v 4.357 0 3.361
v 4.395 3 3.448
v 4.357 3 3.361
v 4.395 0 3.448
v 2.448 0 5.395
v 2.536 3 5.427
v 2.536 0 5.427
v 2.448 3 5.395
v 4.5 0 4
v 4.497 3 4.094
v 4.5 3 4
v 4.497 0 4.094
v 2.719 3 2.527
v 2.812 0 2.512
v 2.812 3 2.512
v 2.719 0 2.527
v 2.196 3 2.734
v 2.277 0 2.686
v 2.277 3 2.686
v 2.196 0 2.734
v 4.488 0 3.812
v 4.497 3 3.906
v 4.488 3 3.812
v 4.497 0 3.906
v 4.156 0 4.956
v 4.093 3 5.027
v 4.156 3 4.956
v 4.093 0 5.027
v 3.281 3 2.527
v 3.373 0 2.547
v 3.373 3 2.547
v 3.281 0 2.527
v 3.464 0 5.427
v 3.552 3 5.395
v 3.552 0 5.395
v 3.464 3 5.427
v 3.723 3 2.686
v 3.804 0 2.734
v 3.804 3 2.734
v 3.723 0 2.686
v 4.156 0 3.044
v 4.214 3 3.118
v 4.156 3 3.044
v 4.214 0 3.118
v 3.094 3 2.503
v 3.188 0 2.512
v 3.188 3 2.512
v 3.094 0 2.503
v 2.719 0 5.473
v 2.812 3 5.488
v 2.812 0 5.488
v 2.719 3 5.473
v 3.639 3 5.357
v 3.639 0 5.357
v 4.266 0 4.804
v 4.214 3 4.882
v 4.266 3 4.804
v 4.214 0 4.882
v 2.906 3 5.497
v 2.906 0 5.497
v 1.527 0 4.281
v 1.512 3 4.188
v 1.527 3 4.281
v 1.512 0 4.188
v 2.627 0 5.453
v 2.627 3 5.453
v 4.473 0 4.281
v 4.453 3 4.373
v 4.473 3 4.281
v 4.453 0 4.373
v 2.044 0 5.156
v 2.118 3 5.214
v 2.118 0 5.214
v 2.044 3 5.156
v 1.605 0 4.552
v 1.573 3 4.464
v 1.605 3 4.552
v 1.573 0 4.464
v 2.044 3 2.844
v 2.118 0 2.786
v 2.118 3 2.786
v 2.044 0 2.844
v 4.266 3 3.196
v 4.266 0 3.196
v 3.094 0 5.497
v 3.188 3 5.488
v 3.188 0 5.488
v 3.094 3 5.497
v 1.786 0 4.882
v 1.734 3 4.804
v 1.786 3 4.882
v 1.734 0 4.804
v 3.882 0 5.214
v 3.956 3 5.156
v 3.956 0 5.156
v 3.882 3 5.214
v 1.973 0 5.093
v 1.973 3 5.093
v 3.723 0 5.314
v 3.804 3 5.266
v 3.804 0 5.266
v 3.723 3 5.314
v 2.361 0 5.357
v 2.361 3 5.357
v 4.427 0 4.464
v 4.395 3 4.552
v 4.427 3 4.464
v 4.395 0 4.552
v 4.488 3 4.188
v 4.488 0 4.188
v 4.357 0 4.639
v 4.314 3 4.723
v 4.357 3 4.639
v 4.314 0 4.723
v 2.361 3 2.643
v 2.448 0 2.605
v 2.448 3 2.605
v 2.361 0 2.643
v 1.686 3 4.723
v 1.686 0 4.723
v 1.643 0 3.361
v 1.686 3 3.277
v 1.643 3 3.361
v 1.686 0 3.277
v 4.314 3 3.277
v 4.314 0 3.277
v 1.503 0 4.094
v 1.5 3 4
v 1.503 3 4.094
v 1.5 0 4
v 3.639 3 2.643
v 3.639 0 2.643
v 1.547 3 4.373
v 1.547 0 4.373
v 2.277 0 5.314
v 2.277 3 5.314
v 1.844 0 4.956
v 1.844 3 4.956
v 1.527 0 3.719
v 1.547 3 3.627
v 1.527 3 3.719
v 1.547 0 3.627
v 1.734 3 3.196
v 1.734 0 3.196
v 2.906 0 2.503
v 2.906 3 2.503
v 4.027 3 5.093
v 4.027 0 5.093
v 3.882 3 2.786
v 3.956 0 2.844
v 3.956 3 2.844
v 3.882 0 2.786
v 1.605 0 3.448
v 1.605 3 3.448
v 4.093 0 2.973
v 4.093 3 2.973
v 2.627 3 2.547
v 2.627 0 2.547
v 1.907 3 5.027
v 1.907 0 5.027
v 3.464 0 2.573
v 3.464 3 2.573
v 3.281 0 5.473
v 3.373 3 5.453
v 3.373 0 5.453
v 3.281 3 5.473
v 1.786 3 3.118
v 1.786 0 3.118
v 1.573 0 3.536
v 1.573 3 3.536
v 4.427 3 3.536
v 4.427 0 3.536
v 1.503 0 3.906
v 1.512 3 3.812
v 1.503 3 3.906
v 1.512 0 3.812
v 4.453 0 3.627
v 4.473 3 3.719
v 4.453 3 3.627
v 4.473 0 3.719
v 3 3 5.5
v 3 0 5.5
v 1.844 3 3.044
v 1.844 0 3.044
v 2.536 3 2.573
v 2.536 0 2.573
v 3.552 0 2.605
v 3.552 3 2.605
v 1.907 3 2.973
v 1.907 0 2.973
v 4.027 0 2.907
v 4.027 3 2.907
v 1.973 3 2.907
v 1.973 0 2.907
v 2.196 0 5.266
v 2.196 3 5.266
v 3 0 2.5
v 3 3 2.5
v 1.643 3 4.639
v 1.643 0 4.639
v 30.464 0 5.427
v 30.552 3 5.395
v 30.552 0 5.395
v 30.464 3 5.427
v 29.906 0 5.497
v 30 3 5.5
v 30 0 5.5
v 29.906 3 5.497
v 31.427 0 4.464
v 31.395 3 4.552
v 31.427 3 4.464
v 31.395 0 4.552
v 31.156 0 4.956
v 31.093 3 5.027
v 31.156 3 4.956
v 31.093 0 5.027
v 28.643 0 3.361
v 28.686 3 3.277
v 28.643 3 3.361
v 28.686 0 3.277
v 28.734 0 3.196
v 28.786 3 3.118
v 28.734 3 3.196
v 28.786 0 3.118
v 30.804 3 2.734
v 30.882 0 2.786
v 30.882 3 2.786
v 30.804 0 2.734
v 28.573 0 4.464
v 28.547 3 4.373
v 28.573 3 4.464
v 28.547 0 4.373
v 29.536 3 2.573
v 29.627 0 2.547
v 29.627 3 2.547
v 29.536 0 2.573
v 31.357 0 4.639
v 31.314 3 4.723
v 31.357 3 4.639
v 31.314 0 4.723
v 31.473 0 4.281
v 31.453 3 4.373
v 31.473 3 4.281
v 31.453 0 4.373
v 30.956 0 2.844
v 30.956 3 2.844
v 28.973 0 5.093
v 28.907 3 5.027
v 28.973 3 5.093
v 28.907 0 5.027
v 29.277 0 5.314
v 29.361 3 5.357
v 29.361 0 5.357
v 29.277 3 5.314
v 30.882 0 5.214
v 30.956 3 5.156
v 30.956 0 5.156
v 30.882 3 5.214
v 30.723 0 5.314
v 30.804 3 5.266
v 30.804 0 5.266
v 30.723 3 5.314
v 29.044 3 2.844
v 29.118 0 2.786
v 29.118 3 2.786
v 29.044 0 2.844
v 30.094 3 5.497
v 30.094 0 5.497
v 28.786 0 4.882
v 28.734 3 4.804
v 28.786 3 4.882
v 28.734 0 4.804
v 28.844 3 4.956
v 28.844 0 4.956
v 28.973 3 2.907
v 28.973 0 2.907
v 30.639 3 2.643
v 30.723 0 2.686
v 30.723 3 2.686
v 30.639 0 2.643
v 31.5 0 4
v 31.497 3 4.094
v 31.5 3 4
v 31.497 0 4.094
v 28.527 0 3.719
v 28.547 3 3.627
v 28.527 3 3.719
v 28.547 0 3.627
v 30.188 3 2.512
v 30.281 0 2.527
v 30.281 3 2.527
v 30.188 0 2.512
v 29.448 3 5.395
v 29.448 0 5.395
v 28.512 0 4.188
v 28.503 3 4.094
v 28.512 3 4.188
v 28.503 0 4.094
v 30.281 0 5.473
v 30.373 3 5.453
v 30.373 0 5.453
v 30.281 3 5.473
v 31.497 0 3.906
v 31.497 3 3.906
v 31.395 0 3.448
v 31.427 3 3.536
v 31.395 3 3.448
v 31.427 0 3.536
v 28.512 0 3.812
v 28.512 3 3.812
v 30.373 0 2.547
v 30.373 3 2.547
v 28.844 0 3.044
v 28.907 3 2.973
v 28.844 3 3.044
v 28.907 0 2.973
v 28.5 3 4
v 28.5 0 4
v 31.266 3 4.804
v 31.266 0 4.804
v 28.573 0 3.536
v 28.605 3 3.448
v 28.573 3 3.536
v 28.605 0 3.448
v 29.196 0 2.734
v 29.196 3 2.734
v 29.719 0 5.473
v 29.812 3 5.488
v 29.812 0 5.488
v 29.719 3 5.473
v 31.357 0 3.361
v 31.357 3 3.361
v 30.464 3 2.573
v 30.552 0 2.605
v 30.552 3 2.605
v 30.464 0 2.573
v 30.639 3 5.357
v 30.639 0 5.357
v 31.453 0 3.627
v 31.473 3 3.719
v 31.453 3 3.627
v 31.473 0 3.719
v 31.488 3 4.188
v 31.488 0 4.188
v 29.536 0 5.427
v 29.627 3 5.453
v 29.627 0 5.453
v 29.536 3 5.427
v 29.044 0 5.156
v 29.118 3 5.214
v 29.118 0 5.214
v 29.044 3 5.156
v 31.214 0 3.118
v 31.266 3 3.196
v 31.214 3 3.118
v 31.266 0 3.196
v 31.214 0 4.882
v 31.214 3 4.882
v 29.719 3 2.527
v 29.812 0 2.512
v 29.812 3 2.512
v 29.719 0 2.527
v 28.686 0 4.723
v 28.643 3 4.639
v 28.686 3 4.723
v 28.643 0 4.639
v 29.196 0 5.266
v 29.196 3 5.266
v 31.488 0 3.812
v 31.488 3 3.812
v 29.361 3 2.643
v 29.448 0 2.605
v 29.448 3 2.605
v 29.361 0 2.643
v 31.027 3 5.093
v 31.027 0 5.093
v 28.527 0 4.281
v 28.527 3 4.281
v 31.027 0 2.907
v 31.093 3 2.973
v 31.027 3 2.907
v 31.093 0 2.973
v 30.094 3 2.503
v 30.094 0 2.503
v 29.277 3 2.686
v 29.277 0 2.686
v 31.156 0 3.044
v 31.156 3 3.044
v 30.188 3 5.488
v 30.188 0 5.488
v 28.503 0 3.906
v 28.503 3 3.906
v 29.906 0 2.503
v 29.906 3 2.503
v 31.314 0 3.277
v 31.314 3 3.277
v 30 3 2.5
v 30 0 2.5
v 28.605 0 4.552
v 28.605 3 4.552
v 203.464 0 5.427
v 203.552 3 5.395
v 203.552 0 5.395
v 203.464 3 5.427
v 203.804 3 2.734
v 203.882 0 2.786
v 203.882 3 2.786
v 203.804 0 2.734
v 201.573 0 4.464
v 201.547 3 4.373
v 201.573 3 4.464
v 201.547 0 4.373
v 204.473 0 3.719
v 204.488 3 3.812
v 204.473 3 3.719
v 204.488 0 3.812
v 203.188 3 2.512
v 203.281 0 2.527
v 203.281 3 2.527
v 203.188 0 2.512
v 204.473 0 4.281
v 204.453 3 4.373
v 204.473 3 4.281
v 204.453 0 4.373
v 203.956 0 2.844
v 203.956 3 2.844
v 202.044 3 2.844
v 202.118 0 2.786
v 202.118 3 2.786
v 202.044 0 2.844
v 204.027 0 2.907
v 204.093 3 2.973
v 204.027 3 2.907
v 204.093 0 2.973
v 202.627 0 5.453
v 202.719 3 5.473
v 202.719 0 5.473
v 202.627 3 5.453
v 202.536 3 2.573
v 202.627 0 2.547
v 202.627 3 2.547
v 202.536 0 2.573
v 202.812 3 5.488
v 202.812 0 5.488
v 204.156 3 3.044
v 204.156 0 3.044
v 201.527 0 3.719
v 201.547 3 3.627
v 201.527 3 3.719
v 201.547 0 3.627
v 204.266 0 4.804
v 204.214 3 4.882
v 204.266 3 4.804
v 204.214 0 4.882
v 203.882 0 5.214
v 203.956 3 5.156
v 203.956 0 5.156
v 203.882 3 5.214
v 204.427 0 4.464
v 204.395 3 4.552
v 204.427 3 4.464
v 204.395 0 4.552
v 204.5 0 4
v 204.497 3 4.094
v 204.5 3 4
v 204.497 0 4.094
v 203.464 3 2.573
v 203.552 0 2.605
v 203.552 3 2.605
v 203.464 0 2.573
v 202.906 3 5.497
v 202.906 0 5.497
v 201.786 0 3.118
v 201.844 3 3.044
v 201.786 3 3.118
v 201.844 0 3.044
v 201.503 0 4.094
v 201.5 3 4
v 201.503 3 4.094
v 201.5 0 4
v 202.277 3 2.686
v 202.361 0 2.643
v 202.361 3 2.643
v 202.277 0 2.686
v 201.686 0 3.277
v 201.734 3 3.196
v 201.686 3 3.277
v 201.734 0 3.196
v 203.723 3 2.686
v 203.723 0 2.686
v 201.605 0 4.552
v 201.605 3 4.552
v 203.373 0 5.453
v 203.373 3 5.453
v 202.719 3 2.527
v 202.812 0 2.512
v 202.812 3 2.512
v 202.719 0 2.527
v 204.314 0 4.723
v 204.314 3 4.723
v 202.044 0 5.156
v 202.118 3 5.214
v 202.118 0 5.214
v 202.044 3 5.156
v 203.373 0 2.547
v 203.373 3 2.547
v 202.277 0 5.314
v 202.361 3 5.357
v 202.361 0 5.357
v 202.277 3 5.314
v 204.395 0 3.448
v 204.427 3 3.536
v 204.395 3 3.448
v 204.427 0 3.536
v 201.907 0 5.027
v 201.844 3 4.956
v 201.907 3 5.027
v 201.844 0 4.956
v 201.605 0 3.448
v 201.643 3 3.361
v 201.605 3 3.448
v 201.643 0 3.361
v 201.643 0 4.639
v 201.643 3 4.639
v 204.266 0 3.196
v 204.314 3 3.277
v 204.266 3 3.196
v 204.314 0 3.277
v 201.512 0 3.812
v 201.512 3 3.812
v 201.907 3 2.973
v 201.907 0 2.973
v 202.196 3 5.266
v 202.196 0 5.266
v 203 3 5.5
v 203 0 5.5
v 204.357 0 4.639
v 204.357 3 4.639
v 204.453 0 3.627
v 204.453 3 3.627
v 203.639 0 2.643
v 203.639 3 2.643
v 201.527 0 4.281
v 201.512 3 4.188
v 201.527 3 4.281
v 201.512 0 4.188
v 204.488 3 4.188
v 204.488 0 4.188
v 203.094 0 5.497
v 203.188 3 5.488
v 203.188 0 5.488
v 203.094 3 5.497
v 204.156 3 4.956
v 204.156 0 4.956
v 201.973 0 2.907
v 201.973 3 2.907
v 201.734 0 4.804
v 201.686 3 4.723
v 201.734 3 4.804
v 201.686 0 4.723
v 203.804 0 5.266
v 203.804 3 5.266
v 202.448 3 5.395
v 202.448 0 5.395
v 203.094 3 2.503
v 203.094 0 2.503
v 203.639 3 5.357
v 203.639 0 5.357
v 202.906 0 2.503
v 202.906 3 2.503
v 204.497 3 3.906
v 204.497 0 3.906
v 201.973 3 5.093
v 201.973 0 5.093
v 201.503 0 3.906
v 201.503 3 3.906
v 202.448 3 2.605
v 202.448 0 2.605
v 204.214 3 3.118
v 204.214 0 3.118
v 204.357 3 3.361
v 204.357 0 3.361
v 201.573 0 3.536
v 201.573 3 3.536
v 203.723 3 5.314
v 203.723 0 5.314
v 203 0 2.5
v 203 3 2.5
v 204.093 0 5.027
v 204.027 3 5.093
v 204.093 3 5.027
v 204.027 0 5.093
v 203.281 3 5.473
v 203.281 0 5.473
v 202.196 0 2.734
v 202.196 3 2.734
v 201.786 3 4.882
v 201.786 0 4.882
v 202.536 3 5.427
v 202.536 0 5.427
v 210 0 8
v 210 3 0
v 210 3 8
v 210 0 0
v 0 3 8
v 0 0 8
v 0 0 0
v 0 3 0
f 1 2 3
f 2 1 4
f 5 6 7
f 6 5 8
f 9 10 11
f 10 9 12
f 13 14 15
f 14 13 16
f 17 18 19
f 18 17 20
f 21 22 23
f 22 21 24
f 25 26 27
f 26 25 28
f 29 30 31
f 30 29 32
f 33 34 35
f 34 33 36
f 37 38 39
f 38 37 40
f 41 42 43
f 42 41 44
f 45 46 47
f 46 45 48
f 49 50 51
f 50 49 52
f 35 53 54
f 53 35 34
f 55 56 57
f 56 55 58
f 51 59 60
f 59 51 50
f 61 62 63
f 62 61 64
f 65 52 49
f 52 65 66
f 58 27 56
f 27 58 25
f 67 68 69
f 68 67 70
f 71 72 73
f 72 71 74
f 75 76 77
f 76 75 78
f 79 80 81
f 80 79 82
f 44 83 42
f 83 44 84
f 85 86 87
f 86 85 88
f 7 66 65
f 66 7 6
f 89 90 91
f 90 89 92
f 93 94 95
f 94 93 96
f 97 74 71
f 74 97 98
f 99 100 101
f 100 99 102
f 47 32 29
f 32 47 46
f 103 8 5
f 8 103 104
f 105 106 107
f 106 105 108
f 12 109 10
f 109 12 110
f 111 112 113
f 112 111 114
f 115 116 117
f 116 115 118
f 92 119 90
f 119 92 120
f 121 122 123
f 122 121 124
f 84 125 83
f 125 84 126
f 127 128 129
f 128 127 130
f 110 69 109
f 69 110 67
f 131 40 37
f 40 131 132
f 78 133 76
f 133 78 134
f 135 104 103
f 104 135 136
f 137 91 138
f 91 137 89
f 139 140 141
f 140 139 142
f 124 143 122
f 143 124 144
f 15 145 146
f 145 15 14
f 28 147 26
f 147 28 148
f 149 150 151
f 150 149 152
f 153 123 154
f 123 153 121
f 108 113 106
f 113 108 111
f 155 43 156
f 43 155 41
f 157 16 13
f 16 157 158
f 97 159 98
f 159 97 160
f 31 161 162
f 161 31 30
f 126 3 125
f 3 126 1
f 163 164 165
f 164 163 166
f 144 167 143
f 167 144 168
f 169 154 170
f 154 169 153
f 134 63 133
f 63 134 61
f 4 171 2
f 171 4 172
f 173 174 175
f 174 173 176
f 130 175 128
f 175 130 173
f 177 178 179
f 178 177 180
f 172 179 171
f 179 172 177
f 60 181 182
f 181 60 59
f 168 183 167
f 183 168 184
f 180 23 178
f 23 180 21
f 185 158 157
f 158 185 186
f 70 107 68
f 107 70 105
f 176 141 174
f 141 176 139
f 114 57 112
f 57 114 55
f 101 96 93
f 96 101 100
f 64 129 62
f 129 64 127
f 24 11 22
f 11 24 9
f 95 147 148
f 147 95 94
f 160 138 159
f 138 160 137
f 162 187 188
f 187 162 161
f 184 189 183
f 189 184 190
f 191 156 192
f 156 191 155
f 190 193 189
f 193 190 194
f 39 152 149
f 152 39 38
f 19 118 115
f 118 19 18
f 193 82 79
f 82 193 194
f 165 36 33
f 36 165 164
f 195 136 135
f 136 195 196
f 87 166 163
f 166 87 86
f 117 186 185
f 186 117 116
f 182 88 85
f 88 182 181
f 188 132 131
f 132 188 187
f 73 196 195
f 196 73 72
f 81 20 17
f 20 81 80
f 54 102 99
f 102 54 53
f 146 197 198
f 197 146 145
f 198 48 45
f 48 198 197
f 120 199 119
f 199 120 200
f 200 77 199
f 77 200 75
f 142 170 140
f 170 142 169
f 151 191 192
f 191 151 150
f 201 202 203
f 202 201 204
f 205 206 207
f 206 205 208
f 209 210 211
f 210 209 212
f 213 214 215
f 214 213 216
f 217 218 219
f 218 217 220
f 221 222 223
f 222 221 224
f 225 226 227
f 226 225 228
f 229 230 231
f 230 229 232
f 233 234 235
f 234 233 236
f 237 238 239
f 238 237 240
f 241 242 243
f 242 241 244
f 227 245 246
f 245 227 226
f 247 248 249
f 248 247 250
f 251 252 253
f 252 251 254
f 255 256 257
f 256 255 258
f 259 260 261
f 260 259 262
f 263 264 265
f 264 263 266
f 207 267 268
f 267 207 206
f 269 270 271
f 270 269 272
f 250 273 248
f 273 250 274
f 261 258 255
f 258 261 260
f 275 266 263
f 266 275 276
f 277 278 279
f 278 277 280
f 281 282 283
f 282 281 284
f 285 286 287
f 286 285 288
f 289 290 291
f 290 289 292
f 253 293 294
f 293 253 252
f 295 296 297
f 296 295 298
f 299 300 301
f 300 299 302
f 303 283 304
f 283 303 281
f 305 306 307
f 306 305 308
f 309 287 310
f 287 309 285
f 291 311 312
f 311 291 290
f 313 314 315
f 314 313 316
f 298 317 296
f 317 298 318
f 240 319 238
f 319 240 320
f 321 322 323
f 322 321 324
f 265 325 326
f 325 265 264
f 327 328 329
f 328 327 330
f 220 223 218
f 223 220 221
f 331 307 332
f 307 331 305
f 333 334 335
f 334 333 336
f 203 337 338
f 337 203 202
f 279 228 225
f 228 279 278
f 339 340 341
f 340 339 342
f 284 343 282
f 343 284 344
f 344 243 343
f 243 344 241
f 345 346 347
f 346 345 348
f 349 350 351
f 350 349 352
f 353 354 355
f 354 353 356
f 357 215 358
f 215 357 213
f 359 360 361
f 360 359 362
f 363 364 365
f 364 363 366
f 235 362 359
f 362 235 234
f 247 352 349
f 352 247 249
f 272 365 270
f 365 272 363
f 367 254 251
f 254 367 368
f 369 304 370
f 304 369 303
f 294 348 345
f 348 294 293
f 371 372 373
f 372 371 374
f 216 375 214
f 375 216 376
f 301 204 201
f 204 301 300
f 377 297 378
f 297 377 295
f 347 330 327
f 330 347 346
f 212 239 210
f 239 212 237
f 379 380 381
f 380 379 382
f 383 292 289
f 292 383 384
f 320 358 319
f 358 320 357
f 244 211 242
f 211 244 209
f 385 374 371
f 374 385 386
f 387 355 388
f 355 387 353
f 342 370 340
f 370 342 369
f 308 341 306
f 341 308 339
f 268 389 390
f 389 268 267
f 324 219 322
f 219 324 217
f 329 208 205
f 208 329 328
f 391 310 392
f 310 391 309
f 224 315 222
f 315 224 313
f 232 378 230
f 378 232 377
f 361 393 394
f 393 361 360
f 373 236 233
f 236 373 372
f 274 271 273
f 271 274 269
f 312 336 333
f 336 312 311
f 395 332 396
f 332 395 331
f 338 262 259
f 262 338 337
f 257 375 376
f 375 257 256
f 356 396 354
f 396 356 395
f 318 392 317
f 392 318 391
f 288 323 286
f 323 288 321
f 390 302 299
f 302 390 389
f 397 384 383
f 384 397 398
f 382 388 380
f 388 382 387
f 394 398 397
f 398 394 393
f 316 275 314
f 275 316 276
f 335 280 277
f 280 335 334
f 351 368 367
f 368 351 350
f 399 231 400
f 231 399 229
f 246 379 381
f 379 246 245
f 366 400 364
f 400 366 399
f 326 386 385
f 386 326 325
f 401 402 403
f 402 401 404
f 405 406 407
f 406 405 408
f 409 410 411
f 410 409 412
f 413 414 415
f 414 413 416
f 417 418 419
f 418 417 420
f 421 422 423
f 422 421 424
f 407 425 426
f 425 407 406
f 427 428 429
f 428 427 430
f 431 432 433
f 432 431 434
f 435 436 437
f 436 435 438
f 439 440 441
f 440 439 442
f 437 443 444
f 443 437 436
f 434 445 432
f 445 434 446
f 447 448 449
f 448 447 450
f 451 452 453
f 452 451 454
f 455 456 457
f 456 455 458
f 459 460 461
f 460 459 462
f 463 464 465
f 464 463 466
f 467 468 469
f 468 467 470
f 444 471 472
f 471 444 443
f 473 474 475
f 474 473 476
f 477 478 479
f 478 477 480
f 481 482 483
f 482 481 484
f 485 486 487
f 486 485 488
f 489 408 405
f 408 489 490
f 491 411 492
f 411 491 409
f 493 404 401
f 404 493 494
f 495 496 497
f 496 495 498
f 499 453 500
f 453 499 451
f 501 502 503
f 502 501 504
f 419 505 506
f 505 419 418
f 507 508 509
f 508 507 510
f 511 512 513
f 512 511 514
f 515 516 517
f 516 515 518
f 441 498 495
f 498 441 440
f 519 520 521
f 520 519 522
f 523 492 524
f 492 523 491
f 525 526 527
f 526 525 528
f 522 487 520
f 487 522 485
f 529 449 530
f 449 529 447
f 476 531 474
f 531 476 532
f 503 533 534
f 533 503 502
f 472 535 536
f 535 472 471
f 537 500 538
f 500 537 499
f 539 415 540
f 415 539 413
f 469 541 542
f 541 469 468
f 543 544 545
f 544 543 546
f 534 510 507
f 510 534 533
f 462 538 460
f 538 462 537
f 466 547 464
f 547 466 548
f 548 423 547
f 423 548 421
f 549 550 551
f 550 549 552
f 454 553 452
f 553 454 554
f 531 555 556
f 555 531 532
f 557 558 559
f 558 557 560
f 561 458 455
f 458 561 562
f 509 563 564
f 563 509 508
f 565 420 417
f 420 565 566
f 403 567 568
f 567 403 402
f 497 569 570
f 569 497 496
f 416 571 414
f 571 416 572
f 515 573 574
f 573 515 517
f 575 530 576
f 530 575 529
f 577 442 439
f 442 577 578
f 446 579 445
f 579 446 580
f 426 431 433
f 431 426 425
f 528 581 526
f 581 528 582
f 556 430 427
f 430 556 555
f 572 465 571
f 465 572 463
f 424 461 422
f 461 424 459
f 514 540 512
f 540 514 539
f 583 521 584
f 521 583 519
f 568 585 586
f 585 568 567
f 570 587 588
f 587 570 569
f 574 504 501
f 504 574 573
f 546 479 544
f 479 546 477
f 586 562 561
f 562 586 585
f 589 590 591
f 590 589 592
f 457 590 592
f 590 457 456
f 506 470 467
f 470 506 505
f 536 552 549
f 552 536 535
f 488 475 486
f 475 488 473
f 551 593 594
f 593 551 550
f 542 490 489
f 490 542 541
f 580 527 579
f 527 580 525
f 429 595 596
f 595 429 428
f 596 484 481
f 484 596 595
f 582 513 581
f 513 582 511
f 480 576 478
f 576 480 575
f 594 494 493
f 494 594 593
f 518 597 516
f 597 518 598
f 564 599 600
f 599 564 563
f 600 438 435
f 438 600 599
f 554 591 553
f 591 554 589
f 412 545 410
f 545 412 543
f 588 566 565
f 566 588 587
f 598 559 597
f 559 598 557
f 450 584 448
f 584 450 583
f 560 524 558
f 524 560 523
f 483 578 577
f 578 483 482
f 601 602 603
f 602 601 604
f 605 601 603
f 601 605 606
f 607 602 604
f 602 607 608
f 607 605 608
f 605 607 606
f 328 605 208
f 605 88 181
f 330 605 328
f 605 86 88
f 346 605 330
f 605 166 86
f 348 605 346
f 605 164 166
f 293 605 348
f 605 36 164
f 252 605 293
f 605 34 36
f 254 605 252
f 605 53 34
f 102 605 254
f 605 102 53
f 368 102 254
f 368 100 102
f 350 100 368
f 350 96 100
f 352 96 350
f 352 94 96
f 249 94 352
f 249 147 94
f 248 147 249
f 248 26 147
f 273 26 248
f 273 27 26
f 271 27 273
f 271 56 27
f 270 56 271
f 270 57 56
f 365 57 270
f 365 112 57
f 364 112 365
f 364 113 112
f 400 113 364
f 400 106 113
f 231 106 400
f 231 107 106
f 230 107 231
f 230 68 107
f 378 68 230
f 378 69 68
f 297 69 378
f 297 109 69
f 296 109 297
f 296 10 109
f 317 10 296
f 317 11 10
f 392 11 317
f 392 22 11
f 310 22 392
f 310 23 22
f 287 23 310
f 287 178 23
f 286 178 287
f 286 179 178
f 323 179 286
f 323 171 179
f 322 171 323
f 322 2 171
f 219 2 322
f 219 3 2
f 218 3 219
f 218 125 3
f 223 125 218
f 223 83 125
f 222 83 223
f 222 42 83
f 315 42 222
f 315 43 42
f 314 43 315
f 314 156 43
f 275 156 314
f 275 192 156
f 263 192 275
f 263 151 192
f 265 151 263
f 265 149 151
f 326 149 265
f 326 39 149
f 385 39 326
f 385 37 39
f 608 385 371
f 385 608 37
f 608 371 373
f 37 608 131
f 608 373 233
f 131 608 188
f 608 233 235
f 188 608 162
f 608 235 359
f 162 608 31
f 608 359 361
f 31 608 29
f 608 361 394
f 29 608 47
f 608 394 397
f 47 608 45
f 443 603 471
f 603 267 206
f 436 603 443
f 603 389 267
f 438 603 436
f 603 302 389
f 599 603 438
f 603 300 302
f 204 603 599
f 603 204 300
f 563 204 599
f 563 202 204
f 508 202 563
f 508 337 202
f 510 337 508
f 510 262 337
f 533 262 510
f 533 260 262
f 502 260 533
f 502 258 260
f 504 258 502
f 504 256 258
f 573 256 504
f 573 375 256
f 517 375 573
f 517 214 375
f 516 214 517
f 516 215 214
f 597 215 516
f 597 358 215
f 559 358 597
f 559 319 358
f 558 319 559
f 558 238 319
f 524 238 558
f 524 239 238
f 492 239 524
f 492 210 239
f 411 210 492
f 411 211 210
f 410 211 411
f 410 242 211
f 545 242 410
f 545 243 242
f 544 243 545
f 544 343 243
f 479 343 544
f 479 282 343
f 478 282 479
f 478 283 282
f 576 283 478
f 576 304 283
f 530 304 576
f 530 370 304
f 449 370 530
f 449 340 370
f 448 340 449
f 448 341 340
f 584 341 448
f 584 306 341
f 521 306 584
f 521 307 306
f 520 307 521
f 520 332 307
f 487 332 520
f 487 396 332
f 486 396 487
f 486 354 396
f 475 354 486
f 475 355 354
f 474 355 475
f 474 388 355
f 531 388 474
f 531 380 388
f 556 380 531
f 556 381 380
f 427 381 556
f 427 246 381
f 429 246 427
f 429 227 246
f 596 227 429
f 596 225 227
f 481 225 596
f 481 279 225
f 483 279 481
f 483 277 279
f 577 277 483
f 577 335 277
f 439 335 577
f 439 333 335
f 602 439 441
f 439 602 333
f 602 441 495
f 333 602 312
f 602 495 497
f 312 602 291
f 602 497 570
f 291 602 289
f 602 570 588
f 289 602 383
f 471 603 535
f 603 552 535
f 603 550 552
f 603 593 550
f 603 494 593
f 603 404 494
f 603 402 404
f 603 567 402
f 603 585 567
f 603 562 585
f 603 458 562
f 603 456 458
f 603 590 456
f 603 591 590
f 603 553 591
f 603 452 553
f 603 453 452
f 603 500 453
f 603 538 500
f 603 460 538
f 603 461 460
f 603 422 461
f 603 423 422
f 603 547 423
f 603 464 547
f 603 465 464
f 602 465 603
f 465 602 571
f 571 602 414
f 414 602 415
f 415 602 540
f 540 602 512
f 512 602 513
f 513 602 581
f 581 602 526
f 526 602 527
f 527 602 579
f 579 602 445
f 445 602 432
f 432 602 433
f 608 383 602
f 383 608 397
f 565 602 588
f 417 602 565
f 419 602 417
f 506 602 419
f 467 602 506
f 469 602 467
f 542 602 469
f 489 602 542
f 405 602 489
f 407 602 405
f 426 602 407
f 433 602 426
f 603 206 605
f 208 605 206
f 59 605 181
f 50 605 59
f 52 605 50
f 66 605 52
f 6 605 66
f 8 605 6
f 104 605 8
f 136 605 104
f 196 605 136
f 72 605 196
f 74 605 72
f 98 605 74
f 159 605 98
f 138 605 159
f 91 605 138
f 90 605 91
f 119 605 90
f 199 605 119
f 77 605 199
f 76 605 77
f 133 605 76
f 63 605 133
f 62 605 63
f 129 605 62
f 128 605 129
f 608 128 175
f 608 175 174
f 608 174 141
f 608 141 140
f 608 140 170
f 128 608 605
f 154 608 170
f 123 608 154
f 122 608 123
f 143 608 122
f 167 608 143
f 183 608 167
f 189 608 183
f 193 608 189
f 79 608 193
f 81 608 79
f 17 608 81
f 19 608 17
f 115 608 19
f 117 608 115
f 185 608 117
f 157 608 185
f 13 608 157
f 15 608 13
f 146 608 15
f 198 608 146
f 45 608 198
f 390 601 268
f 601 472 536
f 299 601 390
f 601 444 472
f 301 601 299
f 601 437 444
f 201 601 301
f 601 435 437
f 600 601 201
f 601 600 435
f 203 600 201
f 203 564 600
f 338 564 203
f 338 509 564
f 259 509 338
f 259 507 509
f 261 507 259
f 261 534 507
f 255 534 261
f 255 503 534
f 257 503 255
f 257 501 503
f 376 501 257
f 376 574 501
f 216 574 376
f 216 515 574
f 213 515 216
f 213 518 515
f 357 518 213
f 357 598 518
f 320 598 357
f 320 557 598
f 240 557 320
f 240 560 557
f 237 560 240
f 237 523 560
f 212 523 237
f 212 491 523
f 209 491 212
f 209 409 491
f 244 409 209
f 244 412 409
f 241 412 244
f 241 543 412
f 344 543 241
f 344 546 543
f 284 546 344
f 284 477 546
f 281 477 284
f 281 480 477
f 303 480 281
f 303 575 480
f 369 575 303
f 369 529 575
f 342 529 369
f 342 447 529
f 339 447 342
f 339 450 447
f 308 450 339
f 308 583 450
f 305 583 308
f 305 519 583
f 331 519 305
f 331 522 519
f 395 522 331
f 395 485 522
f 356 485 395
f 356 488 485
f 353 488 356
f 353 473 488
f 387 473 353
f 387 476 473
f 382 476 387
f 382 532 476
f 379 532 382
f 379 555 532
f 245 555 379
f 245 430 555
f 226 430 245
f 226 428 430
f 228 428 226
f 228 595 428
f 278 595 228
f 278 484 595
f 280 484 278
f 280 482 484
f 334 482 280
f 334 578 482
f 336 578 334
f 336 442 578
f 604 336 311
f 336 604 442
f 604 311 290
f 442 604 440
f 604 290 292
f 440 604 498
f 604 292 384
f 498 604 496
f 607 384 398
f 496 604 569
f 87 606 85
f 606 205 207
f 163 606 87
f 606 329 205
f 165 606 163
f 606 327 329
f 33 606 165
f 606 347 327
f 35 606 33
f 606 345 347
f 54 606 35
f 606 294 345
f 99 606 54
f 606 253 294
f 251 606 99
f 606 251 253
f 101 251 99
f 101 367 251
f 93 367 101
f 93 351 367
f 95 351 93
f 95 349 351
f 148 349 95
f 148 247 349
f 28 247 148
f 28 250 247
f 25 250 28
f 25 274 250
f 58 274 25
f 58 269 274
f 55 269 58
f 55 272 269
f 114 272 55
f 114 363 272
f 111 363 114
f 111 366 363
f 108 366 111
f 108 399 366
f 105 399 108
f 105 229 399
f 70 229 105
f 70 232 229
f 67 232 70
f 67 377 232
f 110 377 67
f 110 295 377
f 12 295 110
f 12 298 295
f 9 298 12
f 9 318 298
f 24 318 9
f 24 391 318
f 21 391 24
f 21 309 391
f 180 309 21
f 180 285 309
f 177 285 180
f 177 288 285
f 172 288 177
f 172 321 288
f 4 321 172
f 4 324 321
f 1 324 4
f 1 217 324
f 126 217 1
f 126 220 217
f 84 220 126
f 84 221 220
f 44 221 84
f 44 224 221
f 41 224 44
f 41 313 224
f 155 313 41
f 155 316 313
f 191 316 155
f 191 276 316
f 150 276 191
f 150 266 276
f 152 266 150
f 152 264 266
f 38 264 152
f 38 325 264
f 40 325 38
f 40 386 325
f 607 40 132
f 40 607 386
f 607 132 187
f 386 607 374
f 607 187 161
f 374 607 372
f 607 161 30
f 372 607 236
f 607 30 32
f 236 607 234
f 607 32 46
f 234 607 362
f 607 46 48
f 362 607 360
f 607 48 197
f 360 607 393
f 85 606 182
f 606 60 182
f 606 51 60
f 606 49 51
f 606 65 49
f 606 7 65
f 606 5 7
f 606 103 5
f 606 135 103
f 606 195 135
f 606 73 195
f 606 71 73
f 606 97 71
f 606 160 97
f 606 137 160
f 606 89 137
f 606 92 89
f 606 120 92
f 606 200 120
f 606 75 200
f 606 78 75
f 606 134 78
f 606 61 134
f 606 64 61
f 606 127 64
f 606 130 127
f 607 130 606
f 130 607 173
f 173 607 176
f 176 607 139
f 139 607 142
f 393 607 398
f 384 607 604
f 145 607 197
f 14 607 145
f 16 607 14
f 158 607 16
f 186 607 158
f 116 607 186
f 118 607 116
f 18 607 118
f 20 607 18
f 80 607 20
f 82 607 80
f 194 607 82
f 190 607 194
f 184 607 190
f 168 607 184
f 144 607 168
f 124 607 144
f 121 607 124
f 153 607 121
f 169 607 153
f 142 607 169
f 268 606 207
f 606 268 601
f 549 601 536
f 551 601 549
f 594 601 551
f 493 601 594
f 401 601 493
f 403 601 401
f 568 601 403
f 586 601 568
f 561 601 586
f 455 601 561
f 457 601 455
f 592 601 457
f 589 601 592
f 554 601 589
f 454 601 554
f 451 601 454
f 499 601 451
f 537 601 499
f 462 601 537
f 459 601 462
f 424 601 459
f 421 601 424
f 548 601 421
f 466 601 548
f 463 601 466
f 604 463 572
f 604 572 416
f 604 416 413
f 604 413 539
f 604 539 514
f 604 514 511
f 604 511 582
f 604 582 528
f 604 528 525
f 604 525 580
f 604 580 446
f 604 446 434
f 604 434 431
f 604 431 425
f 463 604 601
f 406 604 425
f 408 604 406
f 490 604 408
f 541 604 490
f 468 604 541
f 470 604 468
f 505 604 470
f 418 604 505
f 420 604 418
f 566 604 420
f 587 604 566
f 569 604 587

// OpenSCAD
difference(){
	union(){

        translate([0,0,0]){
            cube([210,3,8], center=false);
        }         

	}
	union() {
        translate([3,5,4]){
            rotate([90,0,0]){
                cylinder(h=117, r=1.5, $fn=100, center=false);
            }
        }         
        translate([3+27,5,4]){
            rotate([90,0,0]){
                cylinder(h=117, r=1.5, $fn=100, center=false);
            }
        }         
        translate([3+200,5,4]){
            rotate([90,0,0]){
                cylinder(h=117, r=1.5, $fn=100, center=false);
            }
        }         

        
	}
}
